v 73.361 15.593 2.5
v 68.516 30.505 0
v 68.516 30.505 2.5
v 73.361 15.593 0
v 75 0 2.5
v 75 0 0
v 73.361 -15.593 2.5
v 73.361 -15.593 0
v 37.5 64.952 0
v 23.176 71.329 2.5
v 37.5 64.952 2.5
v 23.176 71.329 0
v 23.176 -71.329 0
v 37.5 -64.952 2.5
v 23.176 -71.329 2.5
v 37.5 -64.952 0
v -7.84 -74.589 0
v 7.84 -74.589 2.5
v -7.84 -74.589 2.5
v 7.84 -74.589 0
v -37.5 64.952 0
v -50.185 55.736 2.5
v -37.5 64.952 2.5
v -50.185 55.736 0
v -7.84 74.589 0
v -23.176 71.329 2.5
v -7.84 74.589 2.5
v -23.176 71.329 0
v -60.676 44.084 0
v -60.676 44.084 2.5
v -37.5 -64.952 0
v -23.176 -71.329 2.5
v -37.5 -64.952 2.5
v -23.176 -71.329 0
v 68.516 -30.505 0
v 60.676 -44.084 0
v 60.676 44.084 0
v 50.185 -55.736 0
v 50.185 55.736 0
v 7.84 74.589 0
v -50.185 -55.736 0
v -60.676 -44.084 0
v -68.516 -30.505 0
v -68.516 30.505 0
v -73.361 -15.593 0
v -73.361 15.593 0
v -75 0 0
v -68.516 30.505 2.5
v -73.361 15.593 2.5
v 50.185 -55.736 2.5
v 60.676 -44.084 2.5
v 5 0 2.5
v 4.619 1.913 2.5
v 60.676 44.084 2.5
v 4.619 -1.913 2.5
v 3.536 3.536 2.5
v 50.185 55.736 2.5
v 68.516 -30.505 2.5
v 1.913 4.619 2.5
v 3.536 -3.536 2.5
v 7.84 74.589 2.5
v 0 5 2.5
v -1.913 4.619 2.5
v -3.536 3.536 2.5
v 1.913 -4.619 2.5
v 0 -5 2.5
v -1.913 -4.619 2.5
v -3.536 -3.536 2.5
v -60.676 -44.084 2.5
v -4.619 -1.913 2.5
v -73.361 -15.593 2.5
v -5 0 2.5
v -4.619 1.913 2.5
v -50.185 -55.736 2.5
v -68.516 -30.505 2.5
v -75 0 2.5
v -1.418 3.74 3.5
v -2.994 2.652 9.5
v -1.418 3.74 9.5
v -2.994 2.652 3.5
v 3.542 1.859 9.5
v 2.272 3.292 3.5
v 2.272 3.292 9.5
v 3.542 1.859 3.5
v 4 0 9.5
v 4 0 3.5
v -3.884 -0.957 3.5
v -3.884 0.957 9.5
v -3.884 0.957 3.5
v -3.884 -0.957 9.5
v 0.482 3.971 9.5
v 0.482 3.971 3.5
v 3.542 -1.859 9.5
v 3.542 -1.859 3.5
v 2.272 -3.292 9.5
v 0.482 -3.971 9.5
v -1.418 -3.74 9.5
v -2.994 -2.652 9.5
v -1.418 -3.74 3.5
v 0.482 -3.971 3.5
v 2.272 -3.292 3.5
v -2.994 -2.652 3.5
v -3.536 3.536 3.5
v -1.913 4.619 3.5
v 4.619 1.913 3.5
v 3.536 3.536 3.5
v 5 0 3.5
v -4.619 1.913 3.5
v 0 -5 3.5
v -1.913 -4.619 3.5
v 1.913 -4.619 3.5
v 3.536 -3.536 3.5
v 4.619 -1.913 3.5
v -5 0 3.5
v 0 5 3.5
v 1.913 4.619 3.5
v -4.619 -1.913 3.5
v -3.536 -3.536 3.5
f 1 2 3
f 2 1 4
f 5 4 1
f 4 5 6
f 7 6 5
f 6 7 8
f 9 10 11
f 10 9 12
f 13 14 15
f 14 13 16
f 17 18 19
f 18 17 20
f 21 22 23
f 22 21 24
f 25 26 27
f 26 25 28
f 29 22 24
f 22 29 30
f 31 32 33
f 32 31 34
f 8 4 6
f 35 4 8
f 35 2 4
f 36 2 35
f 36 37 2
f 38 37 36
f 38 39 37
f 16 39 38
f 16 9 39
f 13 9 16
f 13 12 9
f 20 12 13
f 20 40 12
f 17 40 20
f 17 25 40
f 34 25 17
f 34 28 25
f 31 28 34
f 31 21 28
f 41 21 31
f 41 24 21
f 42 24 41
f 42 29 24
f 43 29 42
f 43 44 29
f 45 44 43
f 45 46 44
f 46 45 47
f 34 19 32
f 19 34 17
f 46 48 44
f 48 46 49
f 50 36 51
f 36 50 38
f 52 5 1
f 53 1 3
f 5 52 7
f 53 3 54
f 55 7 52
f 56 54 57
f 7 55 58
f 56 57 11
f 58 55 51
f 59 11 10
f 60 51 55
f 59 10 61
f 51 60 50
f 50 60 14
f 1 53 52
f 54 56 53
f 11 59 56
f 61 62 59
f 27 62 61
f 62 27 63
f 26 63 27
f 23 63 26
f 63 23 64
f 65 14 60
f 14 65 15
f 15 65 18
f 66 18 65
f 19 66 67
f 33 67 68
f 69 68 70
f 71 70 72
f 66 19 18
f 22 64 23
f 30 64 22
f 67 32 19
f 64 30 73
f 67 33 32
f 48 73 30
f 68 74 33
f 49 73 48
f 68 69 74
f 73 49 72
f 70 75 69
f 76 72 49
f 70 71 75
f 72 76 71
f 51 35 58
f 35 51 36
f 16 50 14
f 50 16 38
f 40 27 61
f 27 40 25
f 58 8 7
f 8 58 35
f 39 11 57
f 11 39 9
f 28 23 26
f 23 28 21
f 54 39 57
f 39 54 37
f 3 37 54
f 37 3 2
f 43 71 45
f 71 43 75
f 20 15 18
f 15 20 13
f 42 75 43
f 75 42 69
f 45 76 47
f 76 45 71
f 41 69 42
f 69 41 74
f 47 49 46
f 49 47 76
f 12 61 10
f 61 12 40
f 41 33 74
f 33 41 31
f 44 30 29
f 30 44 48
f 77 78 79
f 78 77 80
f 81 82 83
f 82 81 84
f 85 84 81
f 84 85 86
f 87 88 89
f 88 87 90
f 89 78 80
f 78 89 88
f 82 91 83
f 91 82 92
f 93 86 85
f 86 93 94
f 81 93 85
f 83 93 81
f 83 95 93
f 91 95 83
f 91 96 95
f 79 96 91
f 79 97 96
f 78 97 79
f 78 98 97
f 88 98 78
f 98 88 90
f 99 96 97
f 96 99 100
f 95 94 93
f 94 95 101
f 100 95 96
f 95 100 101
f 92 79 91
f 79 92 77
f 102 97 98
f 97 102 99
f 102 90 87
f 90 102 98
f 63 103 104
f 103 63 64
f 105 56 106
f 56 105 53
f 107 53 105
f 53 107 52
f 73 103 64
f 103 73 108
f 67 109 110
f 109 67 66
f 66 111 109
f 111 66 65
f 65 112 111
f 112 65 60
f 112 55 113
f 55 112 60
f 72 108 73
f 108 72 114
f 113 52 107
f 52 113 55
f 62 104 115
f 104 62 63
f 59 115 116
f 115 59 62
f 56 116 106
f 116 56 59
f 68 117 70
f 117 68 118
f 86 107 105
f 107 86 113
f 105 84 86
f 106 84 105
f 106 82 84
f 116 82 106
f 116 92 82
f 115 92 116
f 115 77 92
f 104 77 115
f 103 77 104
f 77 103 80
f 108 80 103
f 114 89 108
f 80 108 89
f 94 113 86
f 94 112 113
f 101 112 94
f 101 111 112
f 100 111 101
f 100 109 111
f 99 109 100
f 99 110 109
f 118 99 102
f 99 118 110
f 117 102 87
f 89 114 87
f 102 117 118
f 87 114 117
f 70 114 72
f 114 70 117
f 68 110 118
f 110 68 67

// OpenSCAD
b_o=22; // 베어링 외경
b_i=8; // 베어링 내경
b_h=7; // 베어링 두께


//top();
bottom();

module top() {
    difference() {
        cylinder(h=6+2.5, r=200/2);

        translate([0,0,2.5]) cylinder(h=6+2.5, r=20/2+0.1, $fn=100);
        translate([0,0,2.5+0.5]) cylinder(h=6+2.5, r=22/2+0.1, $fn=100);
    }
}

module bottom() {
    cylinder(h=2.5, r=150/2);
    cylinder(h=7+2.5, r=8/2);
    #cylinder(h=2.5+1, r=10/2);
}
